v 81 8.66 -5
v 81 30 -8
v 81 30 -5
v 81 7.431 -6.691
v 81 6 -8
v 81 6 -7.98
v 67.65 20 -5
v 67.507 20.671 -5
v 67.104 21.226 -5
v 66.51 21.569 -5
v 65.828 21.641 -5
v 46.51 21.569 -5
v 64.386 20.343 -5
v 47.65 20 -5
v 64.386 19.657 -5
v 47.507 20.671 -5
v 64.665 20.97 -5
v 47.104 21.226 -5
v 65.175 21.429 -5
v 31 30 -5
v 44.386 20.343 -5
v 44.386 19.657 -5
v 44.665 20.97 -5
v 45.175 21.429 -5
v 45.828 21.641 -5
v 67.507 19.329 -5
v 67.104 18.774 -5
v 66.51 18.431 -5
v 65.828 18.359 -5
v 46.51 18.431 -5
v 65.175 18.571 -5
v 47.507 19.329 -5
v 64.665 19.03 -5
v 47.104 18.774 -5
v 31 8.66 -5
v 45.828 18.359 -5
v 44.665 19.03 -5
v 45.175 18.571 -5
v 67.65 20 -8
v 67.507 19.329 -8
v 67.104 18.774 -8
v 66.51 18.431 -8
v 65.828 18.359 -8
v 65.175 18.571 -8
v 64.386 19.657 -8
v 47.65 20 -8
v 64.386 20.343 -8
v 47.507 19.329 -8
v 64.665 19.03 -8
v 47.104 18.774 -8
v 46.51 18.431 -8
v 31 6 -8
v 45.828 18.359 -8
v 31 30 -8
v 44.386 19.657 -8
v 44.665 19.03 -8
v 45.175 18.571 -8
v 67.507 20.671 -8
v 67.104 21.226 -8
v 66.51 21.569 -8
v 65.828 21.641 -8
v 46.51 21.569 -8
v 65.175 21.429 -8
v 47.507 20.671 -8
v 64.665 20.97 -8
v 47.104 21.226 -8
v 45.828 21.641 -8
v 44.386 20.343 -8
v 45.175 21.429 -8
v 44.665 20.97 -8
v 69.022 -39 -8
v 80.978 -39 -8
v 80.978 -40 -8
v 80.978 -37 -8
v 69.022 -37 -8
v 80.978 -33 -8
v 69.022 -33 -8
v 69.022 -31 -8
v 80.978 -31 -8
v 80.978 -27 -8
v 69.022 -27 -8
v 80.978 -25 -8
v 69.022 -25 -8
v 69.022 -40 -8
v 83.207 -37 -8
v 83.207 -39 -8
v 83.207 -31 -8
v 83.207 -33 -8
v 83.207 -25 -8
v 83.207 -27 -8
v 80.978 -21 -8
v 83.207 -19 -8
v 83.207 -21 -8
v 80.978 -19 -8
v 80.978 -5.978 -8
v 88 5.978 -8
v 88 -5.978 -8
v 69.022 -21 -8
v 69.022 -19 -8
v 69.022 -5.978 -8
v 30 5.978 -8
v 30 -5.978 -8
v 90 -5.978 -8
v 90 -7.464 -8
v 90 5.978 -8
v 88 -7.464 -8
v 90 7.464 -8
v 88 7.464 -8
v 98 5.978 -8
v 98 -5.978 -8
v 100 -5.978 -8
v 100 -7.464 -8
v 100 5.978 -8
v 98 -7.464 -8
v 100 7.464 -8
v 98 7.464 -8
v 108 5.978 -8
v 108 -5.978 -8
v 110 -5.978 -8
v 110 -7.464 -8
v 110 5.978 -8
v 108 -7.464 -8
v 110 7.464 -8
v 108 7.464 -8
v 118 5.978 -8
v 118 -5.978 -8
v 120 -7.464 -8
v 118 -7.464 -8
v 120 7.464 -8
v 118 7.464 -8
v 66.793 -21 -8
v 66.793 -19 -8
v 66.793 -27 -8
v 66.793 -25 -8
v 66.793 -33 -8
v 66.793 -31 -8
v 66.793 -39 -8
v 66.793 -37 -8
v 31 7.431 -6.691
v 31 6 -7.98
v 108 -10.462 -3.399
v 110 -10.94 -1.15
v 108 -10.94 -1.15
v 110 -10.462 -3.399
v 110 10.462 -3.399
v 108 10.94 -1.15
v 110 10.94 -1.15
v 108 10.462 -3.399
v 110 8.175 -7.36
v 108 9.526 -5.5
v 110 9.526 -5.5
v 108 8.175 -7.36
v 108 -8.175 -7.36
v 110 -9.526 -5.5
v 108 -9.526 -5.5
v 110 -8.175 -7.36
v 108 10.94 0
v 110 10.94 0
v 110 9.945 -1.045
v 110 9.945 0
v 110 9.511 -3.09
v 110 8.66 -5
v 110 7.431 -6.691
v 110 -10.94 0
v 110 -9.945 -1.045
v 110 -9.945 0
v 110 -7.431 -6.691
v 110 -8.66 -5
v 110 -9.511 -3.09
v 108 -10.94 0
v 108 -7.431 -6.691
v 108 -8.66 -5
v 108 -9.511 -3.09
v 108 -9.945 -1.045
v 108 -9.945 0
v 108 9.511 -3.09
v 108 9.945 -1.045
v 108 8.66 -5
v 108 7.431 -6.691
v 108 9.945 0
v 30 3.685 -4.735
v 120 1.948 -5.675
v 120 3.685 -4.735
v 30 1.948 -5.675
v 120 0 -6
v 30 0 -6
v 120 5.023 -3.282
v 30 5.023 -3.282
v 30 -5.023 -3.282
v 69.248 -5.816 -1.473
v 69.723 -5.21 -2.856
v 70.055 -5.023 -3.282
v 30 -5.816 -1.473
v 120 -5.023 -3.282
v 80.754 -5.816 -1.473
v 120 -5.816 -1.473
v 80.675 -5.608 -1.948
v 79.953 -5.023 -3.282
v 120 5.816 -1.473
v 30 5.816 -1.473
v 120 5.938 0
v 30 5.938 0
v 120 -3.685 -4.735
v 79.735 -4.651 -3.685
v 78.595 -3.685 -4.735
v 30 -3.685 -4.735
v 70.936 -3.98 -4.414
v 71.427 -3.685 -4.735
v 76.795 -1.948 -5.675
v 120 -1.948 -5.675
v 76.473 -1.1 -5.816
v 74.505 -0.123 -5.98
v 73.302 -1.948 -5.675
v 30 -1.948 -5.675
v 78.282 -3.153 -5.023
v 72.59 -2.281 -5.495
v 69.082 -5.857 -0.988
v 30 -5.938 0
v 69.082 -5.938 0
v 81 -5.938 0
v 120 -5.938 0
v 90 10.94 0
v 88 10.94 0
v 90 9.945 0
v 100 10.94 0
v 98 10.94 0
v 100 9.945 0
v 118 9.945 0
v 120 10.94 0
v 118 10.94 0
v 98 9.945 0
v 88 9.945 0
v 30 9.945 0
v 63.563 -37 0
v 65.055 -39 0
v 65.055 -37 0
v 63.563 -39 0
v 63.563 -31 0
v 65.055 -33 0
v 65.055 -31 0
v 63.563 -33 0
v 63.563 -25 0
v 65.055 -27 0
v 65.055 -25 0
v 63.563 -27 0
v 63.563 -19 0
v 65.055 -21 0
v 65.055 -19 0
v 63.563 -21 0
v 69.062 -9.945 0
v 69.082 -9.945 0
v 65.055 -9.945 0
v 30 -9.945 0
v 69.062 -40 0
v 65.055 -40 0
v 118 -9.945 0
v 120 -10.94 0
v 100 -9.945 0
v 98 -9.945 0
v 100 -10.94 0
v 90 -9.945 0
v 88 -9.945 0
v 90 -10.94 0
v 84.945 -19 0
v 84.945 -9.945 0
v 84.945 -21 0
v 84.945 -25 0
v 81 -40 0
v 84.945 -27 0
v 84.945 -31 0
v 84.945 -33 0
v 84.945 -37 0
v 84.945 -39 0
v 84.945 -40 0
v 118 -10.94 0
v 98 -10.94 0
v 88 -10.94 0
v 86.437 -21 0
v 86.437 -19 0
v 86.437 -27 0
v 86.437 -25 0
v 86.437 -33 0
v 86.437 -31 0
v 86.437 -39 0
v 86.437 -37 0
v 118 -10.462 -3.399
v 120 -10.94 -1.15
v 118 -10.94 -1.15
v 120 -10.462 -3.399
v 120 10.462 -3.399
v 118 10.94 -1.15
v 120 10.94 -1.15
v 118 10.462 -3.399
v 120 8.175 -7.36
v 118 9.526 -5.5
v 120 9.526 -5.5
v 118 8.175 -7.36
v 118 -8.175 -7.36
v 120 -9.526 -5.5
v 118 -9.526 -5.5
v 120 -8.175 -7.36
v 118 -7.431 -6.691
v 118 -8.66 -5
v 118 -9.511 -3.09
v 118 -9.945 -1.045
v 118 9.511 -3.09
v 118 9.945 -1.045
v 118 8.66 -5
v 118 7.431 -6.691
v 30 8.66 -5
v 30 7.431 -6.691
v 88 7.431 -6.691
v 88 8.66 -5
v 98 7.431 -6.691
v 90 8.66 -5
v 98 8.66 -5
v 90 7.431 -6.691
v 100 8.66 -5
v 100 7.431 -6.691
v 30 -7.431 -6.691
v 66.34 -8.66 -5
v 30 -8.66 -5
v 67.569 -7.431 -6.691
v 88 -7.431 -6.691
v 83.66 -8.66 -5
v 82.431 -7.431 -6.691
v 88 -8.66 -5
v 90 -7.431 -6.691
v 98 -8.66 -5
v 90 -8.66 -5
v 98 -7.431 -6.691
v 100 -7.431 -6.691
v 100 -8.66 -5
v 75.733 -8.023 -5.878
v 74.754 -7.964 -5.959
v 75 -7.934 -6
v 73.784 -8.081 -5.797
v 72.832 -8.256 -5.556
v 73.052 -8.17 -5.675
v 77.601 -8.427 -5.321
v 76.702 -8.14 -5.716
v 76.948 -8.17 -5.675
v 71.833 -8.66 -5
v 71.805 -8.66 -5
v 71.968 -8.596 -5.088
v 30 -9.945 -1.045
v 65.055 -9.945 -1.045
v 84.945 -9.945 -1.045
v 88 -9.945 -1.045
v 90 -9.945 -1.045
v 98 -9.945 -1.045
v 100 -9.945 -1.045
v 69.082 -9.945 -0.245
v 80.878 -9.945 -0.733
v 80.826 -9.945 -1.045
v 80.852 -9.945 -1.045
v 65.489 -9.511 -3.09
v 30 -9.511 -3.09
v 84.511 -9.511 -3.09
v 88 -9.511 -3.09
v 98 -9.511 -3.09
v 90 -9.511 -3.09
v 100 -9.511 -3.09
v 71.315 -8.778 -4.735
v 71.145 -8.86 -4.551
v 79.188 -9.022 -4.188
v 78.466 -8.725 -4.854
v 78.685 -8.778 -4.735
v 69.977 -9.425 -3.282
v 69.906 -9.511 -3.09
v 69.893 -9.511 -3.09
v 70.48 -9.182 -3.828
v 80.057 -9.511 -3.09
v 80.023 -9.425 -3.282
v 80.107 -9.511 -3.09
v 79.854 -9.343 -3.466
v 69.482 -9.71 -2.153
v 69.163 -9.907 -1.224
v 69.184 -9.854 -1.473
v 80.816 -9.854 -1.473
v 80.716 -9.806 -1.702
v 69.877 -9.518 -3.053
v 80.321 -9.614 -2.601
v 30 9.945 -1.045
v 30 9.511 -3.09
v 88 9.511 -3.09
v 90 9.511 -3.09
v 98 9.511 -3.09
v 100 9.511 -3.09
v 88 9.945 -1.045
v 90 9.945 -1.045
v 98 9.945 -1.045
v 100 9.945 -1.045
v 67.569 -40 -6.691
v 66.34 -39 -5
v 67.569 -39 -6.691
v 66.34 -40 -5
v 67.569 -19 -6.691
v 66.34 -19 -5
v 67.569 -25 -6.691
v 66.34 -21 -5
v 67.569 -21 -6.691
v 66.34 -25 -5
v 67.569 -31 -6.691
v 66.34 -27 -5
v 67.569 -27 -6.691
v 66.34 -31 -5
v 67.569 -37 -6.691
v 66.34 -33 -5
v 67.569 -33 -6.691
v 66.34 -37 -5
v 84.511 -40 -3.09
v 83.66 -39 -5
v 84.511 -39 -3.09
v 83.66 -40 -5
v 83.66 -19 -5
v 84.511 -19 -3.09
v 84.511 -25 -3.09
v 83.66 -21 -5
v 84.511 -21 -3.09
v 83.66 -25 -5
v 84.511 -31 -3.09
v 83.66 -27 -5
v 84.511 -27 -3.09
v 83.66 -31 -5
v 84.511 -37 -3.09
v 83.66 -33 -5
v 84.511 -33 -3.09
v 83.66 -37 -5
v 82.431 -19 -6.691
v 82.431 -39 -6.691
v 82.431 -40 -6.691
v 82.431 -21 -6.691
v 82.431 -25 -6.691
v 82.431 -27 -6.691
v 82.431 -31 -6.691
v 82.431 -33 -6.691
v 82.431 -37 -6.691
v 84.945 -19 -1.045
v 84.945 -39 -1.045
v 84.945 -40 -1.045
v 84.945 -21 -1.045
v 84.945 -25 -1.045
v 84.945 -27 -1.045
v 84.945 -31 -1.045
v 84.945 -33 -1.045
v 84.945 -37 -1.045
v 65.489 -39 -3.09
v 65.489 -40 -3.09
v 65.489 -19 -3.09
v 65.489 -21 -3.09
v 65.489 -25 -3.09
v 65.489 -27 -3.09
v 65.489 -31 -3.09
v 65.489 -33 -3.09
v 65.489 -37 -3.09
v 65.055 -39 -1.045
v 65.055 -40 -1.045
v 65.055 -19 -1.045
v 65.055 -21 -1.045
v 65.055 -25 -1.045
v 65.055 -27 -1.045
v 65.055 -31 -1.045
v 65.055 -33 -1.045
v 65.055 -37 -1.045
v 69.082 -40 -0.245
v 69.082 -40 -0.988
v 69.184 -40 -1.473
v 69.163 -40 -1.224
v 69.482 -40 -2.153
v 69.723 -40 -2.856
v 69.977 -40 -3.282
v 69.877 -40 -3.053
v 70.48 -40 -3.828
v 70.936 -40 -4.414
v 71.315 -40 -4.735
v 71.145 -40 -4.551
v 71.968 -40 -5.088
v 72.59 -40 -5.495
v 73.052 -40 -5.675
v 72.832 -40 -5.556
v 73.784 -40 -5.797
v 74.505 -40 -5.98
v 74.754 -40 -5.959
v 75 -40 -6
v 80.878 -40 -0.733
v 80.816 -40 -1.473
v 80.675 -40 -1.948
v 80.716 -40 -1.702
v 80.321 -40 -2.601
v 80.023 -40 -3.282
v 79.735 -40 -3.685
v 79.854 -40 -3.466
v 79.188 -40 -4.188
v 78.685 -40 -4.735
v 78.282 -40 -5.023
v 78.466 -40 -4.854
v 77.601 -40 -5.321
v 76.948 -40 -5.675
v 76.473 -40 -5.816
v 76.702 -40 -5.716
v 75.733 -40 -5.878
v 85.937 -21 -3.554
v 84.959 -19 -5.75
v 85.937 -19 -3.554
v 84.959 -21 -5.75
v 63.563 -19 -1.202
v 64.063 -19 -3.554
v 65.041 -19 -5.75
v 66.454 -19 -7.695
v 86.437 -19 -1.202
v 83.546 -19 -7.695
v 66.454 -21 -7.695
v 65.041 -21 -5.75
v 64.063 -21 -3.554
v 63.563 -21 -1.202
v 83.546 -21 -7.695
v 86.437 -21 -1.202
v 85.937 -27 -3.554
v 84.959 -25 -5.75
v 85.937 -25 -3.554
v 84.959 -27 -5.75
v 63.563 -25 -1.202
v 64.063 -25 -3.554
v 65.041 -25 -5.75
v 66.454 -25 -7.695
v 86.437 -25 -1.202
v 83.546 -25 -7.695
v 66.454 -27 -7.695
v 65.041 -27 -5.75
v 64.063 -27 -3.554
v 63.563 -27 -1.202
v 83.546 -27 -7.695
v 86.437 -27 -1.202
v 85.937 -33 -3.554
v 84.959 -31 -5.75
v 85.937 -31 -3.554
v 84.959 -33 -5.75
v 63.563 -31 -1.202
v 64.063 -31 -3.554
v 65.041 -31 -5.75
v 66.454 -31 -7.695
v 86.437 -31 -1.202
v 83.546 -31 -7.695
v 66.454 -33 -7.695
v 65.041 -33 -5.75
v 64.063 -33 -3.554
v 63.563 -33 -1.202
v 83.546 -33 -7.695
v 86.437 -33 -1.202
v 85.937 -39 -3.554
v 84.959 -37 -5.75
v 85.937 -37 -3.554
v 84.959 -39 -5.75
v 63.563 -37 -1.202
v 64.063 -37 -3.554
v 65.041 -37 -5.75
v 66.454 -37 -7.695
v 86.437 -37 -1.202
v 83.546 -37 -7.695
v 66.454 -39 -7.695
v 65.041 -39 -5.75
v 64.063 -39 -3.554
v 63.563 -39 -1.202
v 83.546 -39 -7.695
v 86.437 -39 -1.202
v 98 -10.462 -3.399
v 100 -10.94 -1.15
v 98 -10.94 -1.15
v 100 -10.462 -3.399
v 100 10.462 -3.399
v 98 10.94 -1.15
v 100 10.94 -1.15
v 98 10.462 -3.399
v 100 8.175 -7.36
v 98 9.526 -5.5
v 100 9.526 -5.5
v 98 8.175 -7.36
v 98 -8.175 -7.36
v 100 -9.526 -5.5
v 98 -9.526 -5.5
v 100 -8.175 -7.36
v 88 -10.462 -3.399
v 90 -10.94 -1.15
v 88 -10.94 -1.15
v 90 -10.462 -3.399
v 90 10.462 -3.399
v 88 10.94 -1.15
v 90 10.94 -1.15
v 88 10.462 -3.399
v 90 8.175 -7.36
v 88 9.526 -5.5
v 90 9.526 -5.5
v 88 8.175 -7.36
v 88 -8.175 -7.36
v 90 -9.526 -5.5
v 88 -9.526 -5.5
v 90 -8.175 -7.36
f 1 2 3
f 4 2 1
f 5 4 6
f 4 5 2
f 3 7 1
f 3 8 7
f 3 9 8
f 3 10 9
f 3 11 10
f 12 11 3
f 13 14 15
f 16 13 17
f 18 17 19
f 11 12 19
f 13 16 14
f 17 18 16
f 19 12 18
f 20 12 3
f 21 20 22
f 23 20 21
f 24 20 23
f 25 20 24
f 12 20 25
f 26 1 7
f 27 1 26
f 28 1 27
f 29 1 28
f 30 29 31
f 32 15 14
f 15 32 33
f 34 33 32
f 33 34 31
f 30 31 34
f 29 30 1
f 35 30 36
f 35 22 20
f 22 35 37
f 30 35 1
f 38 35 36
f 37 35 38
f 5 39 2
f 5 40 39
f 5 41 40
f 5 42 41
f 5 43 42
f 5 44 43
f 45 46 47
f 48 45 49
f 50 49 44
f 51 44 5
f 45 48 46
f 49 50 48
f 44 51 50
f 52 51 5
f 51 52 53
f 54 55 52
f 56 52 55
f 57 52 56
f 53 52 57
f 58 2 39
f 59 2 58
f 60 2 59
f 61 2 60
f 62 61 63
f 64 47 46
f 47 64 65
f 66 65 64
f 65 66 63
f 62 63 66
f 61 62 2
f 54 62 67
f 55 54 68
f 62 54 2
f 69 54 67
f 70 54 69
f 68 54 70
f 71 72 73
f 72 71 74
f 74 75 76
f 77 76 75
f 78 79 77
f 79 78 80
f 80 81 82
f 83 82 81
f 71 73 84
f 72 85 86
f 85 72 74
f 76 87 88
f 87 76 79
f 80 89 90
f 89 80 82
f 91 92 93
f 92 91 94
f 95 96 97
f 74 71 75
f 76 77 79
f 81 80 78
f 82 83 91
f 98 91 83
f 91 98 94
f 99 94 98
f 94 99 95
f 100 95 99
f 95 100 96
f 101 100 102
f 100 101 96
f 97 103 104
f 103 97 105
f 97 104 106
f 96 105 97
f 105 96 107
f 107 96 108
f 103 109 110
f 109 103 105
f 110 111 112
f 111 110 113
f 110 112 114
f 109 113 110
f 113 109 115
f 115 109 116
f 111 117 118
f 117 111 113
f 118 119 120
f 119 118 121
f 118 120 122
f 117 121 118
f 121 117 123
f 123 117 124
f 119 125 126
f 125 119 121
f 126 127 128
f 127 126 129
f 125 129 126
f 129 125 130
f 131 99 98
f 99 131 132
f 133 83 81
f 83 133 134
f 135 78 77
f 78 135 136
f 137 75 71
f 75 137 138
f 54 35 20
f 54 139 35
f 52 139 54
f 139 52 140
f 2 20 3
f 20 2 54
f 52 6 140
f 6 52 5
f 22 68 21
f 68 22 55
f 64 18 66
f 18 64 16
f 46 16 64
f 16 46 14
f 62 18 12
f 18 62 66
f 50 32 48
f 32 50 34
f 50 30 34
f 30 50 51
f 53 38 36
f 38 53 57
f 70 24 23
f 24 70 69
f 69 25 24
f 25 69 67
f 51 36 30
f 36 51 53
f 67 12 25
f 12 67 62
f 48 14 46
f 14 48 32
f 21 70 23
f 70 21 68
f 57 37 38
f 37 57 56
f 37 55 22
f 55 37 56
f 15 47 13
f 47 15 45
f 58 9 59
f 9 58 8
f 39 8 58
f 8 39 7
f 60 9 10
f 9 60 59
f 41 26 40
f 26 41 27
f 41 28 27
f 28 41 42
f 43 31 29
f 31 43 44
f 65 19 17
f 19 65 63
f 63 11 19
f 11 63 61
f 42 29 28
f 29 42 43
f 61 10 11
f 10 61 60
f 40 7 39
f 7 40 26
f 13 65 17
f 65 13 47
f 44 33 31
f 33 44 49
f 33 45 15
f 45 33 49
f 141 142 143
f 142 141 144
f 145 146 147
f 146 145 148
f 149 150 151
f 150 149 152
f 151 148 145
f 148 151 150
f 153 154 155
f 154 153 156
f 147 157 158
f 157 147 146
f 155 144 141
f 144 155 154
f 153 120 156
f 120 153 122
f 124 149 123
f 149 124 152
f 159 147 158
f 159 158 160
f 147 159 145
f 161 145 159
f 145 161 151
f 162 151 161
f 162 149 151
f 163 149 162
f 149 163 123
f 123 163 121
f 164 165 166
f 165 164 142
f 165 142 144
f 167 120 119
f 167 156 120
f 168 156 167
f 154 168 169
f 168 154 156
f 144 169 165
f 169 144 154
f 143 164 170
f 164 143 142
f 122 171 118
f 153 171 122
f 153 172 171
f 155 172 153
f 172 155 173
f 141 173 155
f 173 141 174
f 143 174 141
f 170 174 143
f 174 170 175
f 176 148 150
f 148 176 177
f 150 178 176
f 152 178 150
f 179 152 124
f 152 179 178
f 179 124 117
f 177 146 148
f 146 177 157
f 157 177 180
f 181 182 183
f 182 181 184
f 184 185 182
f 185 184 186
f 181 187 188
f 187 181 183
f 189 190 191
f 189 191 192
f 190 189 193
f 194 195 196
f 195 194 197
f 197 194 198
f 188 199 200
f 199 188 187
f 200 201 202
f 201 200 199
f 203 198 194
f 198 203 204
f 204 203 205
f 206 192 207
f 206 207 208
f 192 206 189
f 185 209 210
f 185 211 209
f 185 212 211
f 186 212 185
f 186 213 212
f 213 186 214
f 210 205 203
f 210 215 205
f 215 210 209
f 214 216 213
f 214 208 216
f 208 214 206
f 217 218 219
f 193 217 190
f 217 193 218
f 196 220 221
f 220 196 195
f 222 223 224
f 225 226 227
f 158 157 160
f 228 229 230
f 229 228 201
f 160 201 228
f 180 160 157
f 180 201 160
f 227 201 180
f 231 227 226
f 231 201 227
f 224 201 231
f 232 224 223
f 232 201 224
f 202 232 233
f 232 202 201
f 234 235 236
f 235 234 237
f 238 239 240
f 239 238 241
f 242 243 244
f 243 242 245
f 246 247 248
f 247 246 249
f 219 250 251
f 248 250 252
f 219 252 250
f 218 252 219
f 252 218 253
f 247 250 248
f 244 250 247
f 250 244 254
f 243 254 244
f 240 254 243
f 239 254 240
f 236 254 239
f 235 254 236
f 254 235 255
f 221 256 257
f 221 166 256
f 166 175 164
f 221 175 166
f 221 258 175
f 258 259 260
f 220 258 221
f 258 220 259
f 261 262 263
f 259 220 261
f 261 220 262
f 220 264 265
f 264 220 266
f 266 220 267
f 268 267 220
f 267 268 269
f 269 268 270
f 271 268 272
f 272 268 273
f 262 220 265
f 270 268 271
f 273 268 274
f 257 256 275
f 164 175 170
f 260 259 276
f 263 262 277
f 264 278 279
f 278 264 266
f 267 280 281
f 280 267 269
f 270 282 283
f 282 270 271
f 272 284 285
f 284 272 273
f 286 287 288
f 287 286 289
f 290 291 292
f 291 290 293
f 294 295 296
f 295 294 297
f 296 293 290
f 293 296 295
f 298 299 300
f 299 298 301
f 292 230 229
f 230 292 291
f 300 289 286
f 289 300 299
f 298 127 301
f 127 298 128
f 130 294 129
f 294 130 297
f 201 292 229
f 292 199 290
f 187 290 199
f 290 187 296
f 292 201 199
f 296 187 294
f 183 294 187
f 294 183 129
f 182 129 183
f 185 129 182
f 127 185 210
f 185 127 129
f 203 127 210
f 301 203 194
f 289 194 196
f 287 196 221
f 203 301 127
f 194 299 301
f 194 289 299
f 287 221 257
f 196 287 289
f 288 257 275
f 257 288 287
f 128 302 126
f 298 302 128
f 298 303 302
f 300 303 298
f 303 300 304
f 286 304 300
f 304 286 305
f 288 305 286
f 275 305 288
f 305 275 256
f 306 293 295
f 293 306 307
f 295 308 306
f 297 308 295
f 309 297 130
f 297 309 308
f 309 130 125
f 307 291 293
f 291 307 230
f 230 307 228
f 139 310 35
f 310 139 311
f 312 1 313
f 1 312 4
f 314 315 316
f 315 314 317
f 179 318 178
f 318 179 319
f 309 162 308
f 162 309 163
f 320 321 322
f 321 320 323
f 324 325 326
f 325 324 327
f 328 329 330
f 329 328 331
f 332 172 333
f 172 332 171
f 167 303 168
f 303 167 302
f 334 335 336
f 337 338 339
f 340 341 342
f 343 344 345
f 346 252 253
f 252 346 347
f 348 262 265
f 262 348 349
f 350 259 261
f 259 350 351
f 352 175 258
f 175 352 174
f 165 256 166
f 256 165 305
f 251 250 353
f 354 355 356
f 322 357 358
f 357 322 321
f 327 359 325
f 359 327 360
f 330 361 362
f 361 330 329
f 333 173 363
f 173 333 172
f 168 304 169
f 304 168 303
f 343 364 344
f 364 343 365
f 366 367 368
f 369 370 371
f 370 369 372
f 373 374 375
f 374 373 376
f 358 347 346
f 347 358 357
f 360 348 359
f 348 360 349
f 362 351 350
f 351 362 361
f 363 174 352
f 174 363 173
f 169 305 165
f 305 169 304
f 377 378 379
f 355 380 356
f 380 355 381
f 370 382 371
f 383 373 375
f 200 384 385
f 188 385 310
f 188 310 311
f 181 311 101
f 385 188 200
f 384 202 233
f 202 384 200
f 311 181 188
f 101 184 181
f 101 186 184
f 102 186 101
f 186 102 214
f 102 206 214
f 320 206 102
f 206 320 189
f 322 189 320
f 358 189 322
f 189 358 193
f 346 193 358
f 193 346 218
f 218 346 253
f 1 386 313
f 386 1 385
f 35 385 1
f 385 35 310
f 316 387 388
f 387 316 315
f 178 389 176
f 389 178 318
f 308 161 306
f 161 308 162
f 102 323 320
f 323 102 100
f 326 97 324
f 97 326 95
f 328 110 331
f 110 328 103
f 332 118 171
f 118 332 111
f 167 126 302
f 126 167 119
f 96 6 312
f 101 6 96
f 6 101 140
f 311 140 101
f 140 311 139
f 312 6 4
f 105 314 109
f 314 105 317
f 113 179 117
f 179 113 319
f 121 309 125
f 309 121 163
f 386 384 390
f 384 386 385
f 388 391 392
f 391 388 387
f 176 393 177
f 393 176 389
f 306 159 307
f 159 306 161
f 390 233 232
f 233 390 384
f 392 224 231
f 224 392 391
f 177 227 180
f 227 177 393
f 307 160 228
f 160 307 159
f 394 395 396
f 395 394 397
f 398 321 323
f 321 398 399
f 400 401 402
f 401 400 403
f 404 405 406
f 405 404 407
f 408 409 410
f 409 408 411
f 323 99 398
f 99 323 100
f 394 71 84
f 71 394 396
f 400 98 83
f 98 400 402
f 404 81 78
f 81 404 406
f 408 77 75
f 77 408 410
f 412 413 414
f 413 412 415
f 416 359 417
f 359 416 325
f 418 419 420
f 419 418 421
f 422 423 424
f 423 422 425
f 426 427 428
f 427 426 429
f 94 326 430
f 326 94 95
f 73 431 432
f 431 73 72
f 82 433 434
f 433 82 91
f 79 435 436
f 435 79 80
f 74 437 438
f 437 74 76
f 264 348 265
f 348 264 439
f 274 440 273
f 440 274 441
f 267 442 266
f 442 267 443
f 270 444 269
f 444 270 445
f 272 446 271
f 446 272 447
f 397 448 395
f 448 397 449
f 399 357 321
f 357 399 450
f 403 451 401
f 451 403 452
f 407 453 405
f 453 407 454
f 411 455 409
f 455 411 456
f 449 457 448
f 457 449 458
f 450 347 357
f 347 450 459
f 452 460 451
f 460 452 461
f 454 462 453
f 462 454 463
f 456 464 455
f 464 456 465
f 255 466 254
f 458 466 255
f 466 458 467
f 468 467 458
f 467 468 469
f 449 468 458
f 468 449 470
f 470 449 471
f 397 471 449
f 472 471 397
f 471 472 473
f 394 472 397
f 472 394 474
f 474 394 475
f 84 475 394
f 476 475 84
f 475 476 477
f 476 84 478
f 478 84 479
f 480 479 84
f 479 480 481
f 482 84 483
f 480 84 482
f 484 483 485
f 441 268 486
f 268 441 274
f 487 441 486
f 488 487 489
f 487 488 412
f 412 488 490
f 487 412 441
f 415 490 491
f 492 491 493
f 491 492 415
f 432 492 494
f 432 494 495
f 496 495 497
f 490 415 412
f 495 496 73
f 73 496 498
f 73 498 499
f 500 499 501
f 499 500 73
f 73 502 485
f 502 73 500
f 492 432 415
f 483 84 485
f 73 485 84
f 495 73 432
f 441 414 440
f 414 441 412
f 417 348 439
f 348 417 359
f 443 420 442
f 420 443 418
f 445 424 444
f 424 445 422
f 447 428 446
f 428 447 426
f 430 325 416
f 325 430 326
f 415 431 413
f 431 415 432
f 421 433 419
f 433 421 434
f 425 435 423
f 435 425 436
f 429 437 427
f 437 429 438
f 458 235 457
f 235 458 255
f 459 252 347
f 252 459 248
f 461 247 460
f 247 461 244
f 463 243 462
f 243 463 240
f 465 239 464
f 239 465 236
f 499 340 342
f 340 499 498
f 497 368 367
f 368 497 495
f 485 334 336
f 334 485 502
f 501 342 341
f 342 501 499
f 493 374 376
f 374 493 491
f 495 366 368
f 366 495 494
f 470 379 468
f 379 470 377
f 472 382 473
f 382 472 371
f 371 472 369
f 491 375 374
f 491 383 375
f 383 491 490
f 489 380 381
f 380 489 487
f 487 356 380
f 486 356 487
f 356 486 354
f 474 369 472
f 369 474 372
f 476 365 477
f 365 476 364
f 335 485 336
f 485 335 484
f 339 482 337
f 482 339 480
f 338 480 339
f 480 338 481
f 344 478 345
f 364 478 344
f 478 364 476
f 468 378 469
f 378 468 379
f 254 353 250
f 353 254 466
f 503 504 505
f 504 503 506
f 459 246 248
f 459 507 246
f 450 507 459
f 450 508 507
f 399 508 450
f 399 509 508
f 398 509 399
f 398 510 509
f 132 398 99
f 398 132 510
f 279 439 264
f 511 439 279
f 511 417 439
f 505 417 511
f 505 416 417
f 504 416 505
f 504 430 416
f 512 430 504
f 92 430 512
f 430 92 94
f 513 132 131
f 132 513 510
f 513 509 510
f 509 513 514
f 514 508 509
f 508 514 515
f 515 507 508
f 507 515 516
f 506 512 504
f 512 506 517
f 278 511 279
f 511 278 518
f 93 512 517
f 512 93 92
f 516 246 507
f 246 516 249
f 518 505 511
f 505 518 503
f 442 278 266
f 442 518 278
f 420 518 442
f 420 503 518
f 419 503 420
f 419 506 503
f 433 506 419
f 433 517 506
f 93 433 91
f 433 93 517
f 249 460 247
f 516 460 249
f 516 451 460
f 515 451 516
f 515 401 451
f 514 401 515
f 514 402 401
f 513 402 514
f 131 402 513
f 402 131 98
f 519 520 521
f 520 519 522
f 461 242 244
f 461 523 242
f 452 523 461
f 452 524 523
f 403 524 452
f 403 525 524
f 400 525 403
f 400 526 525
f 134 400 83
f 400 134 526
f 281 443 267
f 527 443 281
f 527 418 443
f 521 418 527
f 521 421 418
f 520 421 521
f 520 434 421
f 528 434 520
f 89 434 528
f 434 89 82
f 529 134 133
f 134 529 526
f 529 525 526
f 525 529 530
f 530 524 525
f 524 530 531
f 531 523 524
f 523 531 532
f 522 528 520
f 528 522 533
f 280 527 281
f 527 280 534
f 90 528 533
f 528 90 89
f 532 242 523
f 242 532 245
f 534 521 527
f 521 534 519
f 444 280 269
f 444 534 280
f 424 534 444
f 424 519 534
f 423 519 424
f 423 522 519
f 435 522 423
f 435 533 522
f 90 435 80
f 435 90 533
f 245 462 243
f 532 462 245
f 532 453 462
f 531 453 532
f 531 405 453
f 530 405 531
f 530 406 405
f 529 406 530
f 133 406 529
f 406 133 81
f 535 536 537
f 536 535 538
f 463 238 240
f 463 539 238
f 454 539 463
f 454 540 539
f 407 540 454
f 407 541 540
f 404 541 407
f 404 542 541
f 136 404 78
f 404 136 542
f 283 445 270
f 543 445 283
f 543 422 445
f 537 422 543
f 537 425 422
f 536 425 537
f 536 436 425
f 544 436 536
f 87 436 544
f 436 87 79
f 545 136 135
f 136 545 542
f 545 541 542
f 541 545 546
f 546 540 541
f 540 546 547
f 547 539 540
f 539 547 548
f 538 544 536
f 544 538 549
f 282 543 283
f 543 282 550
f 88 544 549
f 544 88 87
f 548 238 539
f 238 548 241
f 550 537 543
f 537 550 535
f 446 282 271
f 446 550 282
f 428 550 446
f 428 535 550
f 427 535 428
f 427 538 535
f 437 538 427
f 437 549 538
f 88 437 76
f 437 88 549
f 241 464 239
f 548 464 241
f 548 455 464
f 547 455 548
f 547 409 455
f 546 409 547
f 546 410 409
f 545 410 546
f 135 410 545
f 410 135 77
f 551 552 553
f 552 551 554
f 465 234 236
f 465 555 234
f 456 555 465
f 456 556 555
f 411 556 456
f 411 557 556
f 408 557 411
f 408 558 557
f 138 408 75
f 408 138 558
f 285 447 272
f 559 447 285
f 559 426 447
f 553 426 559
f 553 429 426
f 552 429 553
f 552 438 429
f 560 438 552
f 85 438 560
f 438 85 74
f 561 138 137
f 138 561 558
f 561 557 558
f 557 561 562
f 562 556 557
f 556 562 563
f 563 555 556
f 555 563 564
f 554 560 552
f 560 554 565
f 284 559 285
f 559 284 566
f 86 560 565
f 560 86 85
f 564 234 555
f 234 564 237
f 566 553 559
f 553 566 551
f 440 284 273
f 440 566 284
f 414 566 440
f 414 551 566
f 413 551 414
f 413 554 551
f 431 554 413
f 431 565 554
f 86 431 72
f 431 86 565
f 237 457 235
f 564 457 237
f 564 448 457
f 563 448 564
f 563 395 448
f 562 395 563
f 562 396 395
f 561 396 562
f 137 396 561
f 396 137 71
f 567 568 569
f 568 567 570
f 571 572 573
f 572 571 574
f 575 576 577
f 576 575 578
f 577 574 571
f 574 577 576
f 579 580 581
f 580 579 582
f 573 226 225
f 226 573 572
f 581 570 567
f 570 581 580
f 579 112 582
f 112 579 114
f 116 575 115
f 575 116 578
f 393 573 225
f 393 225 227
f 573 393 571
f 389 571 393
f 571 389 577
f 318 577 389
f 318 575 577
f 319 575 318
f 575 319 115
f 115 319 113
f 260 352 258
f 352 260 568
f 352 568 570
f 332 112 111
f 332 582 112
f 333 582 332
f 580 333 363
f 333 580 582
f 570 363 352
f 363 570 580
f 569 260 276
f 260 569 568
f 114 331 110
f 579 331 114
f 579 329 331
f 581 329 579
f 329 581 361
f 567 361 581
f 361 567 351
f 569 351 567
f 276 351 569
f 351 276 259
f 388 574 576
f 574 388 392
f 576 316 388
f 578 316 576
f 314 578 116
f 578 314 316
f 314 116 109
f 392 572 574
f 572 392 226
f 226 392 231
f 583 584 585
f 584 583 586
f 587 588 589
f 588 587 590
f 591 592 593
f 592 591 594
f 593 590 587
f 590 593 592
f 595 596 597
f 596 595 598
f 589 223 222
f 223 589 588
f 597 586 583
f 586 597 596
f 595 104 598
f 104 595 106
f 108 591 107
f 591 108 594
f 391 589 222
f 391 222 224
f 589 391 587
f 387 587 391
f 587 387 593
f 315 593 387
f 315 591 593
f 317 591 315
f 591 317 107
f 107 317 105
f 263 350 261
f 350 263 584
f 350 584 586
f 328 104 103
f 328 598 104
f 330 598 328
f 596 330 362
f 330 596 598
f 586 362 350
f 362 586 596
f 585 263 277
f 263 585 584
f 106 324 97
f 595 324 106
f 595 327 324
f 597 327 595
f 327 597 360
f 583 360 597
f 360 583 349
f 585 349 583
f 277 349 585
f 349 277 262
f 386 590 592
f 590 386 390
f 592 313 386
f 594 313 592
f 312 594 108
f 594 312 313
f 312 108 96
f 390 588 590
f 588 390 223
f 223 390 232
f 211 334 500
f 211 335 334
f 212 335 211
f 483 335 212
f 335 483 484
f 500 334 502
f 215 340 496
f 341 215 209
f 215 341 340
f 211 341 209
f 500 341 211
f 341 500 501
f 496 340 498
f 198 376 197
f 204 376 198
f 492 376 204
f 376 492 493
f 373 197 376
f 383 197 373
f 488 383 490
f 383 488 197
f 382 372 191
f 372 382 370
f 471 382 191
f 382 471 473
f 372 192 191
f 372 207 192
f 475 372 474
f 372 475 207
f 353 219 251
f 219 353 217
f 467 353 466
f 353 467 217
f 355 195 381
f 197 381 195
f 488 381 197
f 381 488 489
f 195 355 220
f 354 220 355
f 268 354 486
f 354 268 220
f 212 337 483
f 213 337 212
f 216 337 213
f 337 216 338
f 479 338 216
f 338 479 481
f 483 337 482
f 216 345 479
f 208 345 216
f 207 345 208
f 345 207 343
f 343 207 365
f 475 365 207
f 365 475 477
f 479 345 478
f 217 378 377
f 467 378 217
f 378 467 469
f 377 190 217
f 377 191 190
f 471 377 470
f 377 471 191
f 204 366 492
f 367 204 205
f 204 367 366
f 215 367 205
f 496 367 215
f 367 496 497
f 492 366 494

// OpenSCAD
// file: ../lib/common_wire_mount.scad
/* Common code for wiring mounts. See top_wire_mount.scad and 
 * bottom_wire_mount.scad for the model.
 * Copyright 2021 Alex Volkov <alex@flamy.ca>
 * License: Attribution-ShareAlike 4.0 International (CC BY-SA)
 * https://creativecommons.org/licenses/by-sa/4.0/
 *
 * Version 1.0 2021-04-10 Initial publication
 */


m3_bolt_d = 3.3;

module cable_mount(cable_len, out_d, in_d){
    rotate([0, 90, 0 ]){
    difference(){
        cylinder(d=out_d, h=cable_len);
        cylinder(d=in_d, h=cable_len);
        translate([-out_d/2, 0, cable_len/2])
            cube([out_d, out_d, cable_len], center=true);
        }
    }
}


module plate_mount_top(y_offset, thickness=2){
    difference(){
        translate([-5, 0, 0]){
            cube([50, 25, thickness]);
            cube([15, 7, thickness*2]);
            translate([35, 0, 0, ])
                cube([15, 7, thickness*2]);
        }
        translate([10, y_offset, 0])
            cylinder(d=m3_bolt_d, h=10, $fn=15);
        translate([30, y_offset, 0])
            cylinder(d=m3_bolt_d, h=10, $fn=15);
    }
    
}

module plate_mount(y_offset, thickness=2){
    difference(){
        translate([-5, 0, 0]) cube([50, 24, thickness]);
        translate([10, y_offset, 0])
            cylinder(d=m3_bolt_d, h=10, $fn=15);
        translate([30, y_offset, 0])
            cylinder(d=m3_bolt_d, h=10, $fn=15);
    }
    
}
// main file
/* Bottom wire mount for MKS GEN 1.4 for wiring heated bed and power cables
 * Copyright 2021 Alex Volkov <alex@flamy.ca>
 * License: Attribution-ShareAlike 4.0 International (CC BY-SA)
 * https://creativecommons.org/licenses/by-sa/4.0/
 *
 * Version 1.0 2021-04-10 Initial publication
 */
 
include <../lib/common_wire_mount.scad>



module bottom_wire_holder(){
    inner_pipe_d = 12;
    outer_d = 20;
    vert_pipe_offset = 75;
    vert_pipe_len = 40;
    heated_bed_connector = 120;
    heated_bed_conn_offset = 30;
    bottom_shave_offset = 2;
    difference(){
        union(){
            translate([heated_bed_conn_offset, 0, 0])
                cable_mount(
                    heated_bed_connector - heated_bed_conn_offset,
                    outer_d,
                    inner_pipe_d);
            for(i=[2:10:32]){
                translate([heated_bed_connector - i, 0, 0])
                    cable_mount(2, outer_d+2, inner_pipe_d);
                translate([heated_bed_connector - i , 0, 0])
                    cable_mount(2, outer_d+2, inner_pipe_d);
            }
            // vertical pipe #1
            translate([vert_pipe_offset, 0 , 0]){
                rotate([0,0,270]){
                    cable_mount(vert_pipe_len, outer_d , inner_pipe_d);
                    for (i=[19:6:39]){
                        translate([i, 0, 0])
                            cable_mount(2, outer_d + 3, inner_pipe_d + 5);
                    }
                }
            }
            translate([36, 6, -outer_d/2 + 2])
                plate_mount(14, 3);
        }
        // horizontal cutout
        rotate([0, 90, 0 ])
            cylinder(d=inner_pipe_d, h=heated_bed_connector);
        // vertical pipe cutout #1
        translate([vert_pipe_offset, 0, 0])
            rotate([90, 0, 0 ])
                cylinder(d=inner_pipe_d, h=vert_pipe_len);
        //shave off bottom
        
        translate([0, -70, -outer_d + bottom_shave_offset])
            cube([heated_bed_connector, 100, 10]);
        
    }
}

bottom_wire_holder();
